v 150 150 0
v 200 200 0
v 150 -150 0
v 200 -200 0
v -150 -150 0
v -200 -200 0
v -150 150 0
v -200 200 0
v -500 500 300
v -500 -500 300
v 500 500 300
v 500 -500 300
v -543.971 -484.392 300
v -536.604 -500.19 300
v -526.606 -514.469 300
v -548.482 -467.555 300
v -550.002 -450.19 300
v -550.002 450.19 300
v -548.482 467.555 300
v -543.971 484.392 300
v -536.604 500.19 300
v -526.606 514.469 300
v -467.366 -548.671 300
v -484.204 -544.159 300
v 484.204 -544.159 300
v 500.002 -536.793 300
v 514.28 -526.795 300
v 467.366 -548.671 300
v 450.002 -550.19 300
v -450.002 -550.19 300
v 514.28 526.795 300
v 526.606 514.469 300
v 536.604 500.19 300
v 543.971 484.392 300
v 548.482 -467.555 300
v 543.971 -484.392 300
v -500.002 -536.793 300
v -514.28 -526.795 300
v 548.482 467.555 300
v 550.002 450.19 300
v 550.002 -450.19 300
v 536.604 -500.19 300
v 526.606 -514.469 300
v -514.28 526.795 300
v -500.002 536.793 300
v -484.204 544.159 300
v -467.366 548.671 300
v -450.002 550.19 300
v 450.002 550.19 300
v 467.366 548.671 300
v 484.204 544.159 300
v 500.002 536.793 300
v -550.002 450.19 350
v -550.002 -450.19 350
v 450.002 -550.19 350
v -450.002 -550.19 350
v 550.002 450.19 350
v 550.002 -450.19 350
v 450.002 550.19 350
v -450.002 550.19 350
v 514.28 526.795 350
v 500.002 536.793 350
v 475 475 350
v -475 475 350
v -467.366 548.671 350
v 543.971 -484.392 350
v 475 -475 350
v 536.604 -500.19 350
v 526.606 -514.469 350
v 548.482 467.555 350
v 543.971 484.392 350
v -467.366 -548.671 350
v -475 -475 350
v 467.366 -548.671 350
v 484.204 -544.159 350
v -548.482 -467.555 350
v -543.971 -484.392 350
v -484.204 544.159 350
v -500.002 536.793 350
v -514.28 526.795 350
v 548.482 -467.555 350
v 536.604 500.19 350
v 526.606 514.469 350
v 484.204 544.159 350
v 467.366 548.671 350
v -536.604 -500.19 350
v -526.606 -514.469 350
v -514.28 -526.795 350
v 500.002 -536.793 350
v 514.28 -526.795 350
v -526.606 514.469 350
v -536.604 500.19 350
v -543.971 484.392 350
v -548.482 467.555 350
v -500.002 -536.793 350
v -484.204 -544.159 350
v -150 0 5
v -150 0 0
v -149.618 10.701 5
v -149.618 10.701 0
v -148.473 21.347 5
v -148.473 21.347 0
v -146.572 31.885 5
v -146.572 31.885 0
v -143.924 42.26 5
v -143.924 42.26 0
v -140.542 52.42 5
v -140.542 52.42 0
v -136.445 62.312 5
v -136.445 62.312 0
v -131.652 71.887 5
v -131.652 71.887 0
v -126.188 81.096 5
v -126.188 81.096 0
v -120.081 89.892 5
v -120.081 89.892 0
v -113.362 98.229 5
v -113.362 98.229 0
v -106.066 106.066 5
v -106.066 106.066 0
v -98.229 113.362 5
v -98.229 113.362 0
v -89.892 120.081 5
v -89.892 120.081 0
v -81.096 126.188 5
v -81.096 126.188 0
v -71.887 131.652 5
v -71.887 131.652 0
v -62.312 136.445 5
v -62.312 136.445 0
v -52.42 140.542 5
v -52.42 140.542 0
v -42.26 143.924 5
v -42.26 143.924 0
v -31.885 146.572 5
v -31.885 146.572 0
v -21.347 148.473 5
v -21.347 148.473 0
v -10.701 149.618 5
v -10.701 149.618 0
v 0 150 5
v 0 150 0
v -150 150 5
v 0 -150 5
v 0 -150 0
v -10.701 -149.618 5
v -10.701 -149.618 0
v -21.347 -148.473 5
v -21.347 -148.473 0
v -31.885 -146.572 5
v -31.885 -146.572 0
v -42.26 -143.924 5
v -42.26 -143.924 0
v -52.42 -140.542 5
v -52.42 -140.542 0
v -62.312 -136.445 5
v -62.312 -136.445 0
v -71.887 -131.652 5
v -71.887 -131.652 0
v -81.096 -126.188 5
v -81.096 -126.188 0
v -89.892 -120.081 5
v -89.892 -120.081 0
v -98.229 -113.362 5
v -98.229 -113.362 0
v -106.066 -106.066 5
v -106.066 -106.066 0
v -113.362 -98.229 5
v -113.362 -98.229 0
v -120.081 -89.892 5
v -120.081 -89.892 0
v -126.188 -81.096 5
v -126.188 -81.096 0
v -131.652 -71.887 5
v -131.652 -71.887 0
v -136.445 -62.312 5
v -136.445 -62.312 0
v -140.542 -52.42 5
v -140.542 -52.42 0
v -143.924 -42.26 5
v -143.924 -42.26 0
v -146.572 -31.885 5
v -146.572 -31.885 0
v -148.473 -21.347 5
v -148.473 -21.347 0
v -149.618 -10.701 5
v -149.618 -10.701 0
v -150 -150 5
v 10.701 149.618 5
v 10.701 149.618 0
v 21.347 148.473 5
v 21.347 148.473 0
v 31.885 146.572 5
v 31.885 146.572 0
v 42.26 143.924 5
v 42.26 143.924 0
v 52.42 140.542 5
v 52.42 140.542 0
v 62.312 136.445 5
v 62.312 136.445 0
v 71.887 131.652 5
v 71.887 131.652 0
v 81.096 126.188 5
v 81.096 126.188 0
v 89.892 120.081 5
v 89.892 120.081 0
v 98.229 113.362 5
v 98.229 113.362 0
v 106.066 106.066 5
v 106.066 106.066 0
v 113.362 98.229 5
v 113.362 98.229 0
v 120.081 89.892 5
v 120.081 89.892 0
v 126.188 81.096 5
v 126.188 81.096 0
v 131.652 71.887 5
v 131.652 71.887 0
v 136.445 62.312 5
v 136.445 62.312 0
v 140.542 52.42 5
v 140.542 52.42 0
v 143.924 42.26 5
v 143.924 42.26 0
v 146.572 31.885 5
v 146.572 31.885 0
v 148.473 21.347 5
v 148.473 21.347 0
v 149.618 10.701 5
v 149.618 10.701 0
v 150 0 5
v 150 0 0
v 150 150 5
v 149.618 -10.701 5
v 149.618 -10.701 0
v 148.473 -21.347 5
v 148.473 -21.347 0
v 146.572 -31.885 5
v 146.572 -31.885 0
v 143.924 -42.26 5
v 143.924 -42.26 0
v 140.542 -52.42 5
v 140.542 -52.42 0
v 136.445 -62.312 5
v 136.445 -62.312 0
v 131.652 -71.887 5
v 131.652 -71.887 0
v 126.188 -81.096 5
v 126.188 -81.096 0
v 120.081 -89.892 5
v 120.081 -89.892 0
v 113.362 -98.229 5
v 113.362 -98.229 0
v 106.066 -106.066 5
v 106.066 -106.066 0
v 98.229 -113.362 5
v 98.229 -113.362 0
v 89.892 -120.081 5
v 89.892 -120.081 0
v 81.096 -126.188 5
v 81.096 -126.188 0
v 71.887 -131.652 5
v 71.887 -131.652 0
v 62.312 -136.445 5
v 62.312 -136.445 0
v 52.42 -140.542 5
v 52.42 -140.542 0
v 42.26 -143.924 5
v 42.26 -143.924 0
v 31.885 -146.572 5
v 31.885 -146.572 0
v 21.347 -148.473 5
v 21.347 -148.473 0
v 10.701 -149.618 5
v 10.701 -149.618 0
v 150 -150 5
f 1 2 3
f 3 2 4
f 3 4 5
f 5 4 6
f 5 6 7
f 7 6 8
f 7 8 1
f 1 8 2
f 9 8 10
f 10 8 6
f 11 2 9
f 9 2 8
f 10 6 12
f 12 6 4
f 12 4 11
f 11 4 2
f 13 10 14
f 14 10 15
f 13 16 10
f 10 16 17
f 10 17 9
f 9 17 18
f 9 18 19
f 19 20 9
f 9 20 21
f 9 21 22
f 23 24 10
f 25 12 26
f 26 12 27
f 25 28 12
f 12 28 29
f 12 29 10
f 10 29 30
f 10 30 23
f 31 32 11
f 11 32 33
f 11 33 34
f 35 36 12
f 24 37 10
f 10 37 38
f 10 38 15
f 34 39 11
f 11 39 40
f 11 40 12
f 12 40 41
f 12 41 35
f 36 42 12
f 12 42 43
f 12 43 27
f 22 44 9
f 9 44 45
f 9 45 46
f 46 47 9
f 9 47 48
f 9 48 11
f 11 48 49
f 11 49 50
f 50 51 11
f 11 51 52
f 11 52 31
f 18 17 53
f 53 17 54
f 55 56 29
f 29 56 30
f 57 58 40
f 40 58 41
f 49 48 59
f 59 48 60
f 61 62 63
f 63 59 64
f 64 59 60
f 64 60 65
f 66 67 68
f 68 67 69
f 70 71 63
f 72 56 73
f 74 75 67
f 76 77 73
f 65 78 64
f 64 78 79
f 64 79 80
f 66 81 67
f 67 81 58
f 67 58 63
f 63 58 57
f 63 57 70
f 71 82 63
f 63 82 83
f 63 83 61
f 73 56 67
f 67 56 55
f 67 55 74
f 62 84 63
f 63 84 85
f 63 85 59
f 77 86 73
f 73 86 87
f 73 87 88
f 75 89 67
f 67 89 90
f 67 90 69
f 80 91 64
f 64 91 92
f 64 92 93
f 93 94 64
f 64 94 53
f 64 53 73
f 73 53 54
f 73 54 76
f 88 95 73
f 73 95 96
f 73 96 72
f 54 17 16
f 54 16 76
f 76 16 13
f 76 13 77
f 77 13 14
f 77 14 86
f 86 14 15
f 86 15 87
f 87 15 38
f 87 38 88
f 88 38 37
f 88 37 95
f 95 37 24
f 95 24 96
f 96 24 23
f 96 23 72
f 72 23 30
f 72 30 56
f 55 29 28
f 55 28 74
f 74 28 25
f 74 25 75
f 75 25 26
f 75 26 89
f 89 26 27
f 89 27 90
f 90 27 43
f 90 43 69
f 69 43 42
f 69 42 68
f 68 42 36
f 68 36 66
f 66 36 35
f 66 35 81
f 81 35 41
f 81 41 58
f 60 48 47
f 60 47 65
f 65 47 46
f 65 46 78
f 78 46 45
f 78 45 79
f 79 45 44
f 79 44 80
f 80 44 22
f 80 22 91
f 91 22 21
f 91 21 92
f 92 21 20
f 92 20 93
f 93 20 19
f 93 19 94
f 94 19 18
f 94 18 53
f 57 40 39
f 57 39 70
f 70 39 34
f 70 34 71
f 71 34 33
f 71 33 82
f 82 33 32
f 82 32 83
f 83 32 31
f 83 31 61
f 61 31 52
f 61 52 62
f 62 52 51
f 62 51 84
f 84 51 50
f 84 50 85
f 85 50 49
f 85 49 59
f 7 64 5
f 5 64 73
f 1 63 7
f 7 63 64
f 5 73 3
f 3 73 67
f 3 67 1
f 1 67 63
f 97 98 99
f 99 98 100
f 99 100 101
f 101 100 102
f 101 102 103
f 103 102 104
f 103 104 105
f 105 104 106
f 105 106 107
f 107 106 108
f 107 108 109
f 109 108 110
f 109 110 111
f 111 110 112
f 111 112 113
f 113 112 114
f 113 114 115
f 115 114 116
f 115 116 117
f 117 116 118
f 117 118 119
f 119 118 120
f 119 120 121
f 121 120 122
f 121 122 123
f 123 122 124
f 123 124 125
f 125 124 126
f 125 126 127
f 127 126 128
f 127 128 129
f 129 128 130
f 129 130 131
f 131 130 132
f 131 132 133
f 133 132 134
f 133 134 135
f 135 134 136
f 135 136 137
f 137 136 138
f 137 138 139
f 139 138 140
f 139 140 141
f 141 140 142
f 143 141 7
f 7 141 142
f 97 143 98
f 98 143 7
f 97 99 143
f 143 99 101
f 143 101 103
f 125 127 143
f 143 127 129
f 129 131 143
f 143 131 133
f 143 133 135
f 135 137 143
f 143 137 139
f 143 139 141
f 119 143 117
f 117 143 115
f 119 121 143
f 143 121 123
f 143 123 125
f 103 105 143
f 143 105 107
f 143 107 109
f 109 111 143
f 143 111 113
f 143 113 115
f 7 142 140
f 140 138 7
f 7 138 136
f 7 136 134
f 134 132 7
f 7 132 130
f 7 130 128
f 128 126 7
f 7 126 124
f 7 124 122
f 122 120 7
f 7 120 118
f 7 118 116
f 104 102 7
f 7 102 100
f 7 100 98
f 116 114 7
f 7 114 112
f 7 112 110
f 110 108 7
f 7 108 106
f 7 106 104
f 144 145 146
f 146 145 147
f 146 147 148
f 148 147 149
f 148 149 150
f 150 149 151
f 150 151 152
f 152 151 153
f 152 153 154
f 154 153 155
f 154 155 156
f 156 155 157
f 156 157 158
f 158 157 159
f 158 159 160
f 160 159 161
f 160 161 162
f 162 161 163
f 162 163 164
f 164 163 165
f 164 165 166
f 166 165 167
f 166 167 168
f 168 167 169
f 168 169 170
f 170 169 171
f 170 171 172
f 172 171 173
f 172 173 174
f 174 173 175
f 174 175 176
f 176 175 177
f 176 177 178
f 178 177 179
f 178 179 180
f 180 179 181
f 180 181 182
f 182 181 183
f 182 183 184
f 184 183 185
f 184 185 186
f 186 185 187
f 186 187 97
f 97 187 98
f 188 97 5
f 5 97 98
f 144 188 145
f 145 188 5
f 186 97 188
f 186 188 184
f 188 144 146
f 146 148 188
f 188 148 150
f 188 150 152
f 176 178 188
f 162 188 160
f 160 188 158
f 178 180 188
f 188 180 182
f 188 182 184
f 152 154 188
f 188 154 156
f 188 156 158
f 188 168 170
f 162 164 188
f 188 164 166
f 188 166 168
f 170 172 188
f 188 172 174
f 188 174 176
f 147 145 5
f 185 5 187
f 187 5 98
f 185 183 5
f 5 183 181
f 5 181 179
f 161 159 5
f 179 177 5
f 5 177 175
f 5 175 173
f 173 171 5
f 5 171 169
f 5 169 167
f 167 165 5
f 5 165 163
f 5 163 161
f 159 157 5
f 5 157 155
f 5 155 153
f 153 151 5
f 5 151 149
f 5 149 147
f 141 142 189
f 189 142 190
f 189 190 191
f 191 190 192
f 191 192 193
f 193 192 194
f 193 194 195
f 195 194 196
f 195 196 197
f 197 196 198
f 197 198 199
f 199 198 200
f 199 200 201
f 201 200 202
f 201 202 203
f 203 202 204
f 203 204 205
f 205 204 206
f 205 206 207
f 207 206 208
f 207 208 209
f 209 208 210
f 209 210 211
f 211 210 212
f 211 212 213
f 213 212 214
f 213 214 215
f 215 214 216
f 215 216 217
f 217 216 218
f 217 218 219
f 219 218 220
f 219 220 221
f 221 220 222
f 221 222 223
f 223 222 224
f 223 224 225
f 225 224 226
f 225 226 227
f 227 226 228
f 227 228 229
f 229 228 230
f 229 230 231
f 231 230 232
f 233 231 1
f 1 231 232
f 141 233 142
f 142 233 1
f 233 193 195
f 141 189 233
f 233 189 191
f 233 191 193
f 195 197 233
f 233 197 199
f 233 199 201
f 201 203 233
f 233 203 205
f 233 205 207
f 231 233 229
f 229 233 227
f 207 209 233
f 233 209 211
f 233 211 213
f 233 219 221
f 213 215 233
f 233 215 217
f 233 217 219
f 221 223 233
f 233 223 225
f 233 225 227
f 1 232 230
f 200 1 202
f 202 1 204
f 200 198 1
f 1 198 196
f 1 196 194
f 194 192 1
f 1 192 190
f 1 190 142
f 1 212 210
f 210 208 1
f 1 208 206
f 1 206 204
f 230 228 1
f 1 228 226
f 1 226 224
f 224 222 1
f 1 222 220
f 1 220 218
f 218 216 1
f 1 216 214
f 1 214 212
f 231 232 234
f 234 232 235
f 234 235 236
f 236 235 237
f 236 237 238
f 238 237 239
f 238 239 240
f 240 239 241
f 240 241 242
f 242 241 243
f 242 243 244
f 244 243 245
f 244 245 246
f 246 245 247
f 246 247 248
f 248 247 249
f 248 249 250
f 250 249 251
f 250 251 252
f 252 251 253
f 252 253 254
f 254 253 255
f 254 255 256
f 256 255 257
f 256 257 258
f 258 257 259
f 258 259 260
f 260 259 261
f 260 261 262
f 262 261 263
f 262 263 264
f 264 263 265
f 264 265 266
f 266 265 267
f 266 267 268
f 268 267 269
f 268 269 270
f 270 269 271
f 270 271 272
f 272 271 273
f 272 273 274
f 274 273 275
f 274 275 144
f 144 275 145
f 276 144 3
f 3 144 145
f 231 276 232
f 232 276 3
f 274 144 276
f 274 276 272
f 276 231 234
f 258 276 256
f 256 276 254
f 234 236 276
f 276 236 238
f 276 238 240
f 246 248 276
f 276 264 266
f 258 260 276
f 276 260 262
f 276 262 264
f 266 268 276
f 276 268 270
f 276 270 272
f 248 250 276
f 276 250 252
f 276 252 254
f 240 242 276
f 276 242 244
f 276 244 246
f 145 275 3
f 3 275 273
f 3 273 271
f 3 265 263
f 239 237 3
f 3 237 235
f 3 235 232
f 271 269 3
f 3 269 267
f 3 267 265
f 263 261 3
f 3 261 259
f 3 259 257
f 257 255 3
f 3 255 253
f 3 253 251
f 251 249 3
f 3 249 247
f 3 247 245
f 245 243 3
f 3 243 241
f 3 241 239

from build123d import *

# Parameters (mm, degrees)
SKETCH_3_W        = 1100.003182852
SKETCH_3_H        = 1100.38021032
EXTRUDE_1_DEPTH   = 50
FILLET_1_R        = 100
FILLET_3_R        = 100
FILLET_4_R        = 100
FILLET_5_R        = 100
EXTRUDE_2_DEPTH   = 5
EXTRUDE_2_2_DEPTH = 5
EXTRUDE_2_3_DEPTH = 5
EXTRUDE_2_4_DEPTH = 5


with BuildPart() as part:
    # 스케치1 → Loft 1 section 0
    with BuildSketch(Plane.XY):
        with BuildLine():
            Line((200, -200), (-200, -200))
            Line((-200, -200), (-200, 200))
            Line((-200, 200), (200, 200))
            Line((200, 200), (200, -200))
        make_face()
    # 스케치2 → Loft 1 section 1
    with BuildSketch(Plane.XY.offset(300)):
        with BuildLine():
            Line((500, -500), (-500, -500))
            Line((-500, -500), (-500, 500))
            Line((-500, 500), (500, 500))
            Line((500, 500), (500, -500))
        make_face()
    loft()

    # 스케치3 → 보스-돌출1 (add)
    with BuildSketch(Plane.XY.offset(300)):
        Rectangle(SKETCH_3_W, SKETCH_3_H)
    extrude(amount=EXTRUDE_1_DEPTH)

    # 필렛1
    fillet_1_edges = [part.edges().sort_by_distance(p)[0] for p in [
        (-550.001591426, -550.19010516, 325),
    ]]
    fillet(fillet_1_edges, radius=FILLET_1_R)

    # 필렛3
    fillet_3_edges = [part.edges().sort_by_distance(p)[0] for p in [
        (550.001591426, -550.19010516, 325),
    ]]
    fillet(fillet_3_edges, radius=FILLET_3_R)

    # 필렛4
    fillet_4_edges = [part.edges().sort_by_distance(p)[0] for p in [
        (-550.001591426, 550.19010516, 325),
    ]]
    fillet(fillet_4_edges, radius=FILLET_4_R)

    # 필렛5
    fillet_5_edges = [part.edges().sort_by_distance(p)[0] for p in [
        (550.001591426, 550.19010516, 325),
    ]]
    fillet(fillet_5_edges, radius=FILLET_5_R)

    # 스케치5 → Loft 1 2 section 0
    with BuildSketch(Plane(origin=(0, 0, 0), x_dir=(-1, 0, 0), z_dir=(0, 0, -1))):
        with BuildLine():
            Line((150, -150), (-150, -150))
            Line((-150, -150), (-150, 150))
            Line((-150, 150), (150, 150))
            Line((150, 150), (150, -150))
        make_face()
    # 스케치4 → Loft 1 2 section 1
    with BuildSketch(Plane.XY.offset(350)):
        with BuildLine():
            Line((475, -475), (-475, -475))
            Line((-475, -475), (-475, 475))
            Line((-475, 475), (475, 475))
            Line((475, 475), (475, -475))
        make_face()
    loft(mode=Mode.SUBTRACT)


with BuildPart() as body_2:
    # 스케치6 → 보스-돌출2 (new body)
    with BuildSketch(Plane.XY):
        with BuildLine():
            Line((-150, 150), (-150, 2.07e-07))
            ThreePointArc((-150, 2.07e-07), (-106.066017068, 106.066017288), (1.03e-07, 150))
            Line((1.03e-07, 150), (-150, 150))
        make_face()
    extrude(amount=EXTRUDE_2_DEPTH)


with BuildPart() as body_3:
    # 스케치6 → Extrude 2 2 (new body)
    with BuildSketch(Plane.XY):
        with BuildLine():
            Line((-150, -150), (-3.1e-07, -150))
            ThreePointArc((-3.1e-07, -150), (-106.066017361, -106.066016995), (-150, 2.07e-07))
            Line((-150, 2.07e-07), (-150, -150))
        make_face()
    extrude(amount=EXTRUDE_2_2_DEPTH)


with BuildPart() as body_4:
    # 스케치6 → Extrude 2 3 (new body)
    with BuildSketch(Plane.XY):
        with BuildLine():
            ThreePointArc((1.03e-07, 150), (106.066017215, 106.066017141), (150, 0))
            Line((150, 0), (150, 150))
            Line((150, 150), (1.03e-07, 150))
        make_face()
    extrude(amount=EXTRUDE_2_3_DEPTH)


with BuildPart() as body_5:
    # 스케치6 → Extrude 2 4 (new body)
    with BuildSketch(Plane.XY):
        with BuildLine():
            Line((-3.1e-07, -150), (150, -150))
            Line((150, -150), (150, 0))
            ThreePointArc((150, 0), (106.066017068, -106.066017288), (-3.1e-07, -150))
        make_face()
    extrude(amount=EXTRUDE_2_4_DEPTH)


solid = Compound([part.part, body_2.part, body_3.part, body_4.part, body_5.part])
